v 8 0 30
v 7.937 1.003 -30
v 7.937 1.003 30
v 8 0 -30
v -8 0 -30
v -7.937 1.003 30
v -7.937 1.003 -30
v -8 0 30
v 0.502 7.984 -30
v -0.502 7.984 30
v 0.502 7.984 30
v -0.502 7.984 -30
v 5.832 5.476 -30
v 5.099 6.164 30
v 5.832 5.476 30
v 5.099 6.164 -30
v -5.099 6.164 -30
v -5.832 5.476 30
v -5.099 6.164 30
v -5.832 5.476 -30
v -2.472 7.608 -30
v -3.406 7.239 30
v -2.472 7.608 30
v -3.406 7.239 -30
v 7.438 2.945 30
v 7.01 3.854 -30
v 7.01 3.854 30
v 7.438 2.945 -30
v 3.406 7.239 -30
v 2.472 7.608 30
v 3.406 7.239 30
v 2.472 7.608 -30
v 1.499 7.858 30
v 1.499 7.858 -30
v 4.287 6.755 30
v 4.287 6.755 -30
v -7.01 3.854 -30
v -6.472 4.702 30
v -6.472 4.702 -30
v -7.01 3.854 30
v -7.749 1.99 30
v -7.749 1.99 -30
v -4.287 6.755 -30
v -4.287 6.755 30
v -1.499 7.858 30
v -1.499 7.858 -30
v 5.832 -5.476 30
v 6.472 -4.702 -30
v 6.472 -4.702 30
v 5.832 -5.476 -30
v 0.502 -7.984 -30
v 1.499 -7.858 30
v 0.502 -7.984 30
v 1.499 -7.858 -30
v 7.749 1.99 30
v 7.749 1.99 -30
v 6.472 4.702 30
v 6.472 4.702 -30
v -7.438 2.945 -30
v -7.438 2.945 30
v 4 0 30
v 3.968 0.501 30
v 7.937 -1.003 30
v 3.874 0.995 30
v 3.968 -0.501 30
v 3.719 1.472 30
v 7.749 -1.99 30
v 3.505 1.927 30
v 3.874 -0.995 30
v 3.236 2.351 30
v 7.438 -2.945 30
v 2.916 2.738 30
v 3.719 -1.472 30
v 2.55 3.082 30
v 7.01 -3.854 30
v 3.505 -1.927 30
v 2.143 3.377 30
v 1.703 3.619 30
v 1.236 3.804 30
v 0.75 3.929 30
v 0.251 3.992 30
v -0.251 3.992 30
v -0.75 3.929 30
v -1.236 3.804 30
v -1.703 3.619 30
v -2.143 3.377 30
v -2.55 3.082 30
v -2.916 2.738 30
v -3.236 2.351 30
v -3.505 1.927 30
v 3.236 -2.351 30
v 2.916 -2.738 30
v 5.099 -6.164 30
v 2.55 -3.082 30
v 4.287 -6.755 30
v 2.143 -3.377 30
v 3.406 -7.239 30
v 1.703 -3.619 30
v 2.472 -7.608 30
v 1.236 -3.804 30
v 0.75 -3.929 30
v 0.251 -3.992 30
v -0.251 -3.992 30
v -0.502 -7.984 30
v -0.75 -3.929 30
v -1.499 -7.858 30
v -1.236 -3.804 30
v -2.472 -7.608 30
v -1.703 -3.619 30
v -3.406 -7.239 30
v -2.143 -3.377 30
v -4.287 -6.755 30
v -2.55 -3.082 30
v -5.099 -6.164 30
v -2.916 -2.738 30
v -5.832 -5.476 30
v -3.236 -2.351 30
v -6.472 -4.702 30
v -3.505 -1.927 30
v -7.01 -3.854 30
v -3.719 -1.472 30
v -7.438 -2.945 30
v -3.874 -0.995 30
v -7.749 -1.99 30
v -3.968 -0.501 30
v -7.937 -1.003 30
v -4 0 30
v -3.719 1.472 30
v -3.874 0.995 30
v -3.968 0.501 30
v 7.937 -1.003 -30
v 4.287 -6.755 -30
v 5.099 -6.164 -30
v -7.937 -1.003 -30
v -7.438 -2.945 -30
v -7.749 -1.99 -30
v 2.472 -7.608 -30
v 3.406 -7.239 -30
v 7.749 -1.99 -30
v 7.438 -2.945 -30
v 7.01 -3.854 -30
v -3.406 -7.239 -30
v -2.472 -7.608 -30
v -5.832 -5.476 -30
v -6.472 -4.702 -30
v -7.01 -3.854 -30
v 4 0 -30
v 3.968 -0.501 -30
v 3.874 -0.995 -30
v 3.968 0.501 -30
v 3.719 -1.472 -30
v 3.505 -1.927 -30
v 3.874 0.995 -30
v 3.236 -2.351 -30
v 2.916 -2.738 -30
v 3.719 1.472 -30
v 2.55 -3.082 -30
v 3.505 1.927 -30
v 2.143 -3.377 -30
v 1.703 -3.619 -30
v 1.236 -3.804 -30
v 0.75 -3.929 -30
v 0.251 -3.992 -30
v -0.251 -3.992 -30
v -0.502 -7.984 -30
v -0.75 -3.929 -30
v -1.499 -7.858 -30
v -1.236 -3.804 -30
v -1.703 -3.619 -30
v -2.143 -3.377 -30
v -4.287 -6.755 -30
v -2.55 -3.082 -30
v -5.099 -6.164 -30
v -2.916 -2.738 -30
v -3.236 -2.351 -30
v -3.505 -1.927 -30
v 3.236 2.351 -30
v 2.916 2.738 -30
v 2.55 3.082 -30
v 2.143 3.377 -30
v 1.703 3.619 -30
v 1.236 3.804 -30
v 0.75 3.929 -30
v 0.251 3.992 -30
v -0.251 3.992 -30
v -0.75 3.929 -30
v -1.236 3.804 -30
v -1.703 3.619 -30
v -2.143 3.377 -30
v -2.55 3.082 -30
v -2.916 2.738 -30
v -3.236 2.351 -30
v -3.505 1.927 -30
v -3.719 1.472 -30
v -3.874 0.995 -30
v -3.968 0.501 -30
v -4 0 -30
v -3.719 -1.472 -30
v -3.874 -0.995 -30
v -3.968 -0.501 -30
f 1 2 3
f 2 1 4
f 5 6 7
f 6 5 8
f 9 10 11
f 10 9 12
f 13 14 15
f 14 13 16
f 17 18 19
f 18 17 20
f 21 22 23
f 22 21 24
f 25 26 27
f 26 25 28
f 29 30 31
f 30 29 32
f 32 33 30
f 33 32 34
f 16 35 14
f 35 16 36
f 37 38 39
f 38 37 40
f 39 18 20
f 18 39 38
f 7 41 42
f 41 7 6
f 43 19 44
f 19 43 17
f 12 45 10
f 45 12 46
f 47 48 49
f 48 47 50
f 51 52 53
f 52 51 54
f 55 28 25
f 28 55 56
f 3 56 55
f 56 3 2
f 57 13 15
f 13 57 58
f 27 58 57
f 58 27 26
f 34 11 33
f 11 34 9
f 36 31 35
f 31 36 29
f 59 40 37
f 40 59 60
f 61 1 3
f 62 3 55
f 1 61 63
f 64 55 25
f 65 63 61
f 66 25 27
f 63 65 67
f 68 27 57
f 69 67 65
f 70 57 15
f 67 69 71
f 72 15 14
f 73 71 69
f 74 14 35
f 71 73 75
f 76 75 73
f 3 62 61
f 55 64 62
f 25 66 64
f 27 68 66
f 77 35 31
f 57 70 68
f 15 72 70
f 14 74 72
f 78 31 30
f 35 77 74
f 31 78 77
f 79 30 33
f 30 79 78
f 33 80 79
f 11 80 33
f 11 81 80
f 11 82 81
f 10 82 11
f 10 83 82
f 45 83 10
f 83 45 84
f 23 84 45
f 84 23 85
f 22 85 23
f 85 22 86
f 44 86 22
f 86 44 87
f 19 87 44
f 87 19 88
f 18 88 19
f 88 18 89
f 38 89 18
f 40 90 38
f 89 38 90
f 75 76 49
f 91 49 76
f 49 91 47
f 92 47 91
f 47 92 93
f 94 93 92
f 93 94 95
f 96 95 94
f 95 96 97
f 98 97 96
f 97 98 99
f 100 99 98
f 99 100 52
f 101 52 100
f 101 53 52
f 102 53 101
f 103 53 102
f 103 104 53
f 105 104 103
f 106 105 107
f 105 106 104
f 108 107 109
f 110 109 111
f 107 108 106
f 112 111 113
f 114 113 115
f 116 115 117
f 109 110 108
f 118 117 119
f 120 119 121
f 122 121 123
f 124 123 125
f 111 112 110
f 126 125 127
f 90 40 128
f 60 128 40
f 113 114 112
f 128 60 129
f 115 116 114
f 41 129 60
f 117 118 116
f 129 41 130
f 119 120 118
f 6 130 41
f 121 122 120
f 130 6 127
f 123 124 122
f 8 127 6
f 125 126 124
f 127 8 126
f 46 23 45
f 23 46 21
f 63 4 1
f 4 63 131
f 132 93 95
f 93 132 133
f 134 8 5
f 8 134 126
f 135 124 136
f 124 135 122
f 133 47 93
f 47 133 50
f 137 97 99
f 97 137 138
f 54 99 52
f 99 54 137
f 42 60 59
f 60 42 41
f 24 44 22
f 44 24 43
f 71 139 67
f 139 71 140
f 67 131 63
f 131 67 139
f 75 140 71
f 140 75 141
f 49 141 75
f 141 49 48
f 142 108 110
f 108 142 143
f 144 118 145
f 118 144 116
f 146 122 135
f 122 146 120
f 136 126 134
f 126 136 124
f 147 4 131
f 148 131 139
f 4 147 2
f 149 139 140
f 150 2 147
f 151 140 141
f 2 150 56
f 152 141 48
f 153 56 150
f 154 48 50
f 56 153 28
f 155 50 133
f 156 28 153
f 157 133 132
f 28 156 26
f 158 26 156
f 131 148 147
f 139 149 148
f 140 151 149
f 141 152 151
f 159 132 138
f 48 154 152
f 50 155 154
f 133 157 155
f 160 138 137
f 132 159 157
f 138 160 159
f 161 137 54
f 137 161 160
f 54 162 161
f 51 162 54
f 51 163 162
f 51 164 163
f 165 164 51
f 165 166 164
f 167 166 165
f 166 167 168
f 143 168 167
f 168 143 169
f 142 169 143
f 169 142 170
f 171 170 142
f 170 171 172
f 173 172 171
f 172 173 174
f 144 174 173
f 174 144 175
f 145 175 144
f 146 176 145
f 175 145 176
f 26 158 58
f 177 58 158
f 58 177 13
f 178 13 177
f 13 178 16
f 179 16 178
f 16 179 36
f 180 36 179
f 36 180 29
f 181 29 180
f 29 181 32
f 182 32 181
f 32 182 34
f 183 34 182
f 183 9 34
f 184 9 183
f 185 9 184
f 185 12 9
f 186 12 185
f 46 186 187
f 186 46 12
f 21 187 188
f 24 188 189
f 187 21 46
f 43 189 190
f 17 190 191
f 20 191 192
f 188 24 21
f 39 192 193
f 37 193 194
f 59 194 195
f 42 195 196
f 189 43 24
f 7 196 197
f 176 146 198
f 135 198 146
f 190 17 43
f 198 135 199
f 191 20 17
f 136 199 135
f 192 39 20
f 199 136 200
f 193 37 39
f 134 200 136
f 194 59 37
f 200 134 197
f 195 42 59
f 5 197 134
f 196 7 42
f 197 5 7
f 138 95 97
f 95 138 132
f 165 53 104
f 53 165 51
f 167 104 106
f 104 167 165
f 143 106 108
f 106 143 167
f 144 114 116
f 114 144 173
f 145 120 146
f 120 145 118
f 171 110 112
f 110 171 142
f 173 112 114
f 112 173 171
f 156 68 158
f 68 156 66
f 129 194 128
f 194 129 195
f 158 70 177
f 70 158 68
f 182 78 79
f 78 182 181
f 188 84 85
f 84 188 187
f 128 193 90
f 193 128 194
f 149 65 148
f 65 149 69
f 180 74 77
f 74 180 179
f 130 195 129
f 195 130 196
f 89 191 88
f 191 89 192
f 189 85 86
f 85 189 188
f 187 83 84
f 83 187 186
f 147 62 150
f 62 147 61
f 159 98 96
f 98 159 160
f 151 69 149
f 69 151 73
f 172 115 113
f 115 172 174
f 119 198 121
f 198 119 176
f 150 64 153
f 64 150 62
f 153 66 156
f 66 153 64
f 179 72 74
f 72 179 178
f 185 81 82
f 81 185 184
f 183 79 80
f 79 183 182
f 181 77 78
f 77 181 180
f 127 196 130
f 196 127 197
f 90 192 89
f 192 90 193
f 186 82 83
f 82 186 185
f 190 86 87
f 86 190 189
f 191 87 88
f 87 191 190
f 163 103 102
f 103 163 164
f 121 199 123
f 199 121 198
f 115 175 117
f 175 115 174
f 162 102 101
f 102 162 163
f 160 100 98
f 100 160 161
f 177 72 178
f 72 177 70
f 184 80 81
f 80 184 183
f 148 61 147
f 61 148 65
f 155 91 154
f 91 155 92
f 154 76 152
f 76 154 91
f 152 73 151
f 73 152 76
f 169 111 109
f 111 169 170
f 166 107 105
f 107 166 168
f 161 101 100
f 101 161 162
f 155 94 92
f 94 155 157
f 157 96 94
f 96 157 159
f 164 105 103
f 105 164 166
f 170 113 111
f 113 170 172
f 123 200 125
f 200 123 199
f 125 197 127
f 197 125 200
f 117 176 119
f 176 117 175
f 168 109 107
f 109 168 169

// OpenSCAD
$fn = 50;


difference() {
	union() {
		translate(v = [0, 0, -30.0000000000]) {
			cylinder(h = 60, r = 8.0000000000);
		}
	}
	union() {
		translate(v = [0, 0, -100.0000000000]) {
			cylinder(h = 200, r = 4.0000000000);
		}
	}
}
